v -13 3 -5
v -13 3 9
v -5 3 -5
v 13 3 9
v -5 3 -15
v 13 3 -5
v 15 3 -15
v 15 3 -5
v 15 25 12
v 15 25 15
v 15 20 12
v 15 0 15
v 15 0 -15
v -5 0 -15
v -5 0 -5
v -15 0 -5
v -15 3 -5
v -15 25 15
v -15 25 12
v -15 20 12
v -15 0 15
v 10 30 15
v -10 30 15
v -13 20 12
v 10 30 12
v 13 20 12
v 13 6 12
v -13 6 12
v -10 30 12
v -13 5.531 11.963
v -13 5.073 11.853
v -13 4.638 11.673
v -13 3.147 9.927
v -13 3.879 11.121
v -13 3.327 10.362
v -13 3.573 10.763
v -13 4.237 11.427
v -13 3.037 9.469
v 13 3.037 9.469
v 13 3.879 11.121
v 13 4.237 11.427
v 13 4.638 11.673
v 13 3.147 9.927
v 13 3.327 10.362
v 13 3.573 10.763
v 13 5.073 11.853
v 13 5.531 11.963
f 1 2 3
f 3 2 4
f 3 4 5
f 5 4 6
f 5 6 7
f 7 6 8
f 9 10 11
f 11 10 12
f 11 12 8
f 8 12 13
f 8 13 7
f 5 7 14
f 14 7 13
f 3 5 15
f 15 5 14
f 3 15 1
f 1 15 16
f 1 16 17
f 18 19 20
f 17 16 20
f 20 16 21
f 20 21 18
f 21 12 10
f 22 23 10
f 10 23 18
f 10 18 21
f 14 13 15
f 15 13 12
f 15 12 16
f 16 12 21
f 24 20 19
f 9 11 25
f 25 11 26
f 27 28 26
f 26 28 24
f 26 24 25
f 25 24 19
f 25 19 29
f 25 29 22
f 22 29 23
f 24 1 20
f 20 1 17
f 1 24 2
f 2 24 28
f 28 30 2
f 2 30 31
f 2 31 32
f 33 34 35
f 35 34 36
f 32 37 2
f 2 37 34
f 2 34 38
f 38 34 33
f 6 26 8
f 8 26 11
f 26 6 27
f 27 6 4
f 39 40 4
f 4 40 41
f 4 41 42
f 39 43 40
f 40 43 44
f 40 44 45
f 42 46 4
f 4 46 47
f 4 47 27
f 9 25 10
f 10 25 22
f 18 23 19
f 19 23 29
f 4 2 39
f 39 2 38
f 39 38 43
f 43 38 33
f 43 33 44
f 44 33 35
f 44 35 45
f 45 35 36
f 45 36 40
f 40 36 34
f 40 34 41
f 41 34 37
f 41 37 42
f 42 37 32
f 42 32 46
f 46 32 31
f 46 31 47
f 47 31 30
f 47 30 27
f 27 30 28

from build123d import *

# Parameters (mm, degrees)
BOSS_EXTRUDE1_DEPTH = 3
SKETCH2_W           = 30
SKETCH2_H           = 3
BOSS_EXTRUDE2_DEPTH = 27
BOSS_EXTRUDE3_DEPTH = 2
BOSS_EXTRUDE4_DEPTH = 2
CHAMFER1_SIZE       = 5
FILLET1_R           = 3


with BuildPart() as part:
    # Sketch1 → Boss-Extrude1 (new body)
    with BuildSketch(Plane(origin=(0, 0, 0), x_dir=(1, 0, 0), z_dir=(0, 1, 0))):
        Polygon((-5, 15), (15, 15), (15, -15), (-15, -15), (-15, 5), (-5, 5), align=None)
    extrude(amount=BOSS_EXTRUDE1_DEPTH)

    # Sketch2 → Boss-Extrude2 (add)
    with BuildSketch(Plane(origin=(0, 3, 0), x_dir=(1, 0, 0), z_dir=(0, 1, 0))):
        with Locations((0, -13.5)):
            Rectangle(SKETCH2_W, SKETCH2_H)
    extrude(amount=BOSS_EXTRUDE2_DEPTH)

    # Sketch3 → Boss-Extrude3 (add)
    with BuildSketch(Plane.ZY.offset(15)):
        Polygon((-5, 3), (12, 20), (12, 3), align=None)
    extrude(amount=-BOSS_EXTRUDE3_DEPTH)

    # Sketch4 → Boss-Extrude4 (add)
    with BuildSketch(Plane(origin=(15, 0, 0), x_dir=(0, 0, -1), z_dir=(1, 0, 0))):
        Polygon((-12, 20), (5, 3), (-12, 3), align=None)
    extrude(amount=-BOSS_EXTRUDE4_DEPTH)

    # Chamfer1
    chamfer1_edges = [part.edges().sort_by_distance(p)[0] for p in [
        (-15, 30, 13.5),
        (15, 30, 13.5),
    ]]
    chamfer(chamfer1_edges, length=CHAMFER1_SIZE)

    # Fillet1
    fillet1_edges = [part.edges().sort_by_distance(p)[0] for p in [
        (0, 3, 12),
    ]]
    fillet(fillet1_edges, radius=FILLET1_R)


solid = part.part
